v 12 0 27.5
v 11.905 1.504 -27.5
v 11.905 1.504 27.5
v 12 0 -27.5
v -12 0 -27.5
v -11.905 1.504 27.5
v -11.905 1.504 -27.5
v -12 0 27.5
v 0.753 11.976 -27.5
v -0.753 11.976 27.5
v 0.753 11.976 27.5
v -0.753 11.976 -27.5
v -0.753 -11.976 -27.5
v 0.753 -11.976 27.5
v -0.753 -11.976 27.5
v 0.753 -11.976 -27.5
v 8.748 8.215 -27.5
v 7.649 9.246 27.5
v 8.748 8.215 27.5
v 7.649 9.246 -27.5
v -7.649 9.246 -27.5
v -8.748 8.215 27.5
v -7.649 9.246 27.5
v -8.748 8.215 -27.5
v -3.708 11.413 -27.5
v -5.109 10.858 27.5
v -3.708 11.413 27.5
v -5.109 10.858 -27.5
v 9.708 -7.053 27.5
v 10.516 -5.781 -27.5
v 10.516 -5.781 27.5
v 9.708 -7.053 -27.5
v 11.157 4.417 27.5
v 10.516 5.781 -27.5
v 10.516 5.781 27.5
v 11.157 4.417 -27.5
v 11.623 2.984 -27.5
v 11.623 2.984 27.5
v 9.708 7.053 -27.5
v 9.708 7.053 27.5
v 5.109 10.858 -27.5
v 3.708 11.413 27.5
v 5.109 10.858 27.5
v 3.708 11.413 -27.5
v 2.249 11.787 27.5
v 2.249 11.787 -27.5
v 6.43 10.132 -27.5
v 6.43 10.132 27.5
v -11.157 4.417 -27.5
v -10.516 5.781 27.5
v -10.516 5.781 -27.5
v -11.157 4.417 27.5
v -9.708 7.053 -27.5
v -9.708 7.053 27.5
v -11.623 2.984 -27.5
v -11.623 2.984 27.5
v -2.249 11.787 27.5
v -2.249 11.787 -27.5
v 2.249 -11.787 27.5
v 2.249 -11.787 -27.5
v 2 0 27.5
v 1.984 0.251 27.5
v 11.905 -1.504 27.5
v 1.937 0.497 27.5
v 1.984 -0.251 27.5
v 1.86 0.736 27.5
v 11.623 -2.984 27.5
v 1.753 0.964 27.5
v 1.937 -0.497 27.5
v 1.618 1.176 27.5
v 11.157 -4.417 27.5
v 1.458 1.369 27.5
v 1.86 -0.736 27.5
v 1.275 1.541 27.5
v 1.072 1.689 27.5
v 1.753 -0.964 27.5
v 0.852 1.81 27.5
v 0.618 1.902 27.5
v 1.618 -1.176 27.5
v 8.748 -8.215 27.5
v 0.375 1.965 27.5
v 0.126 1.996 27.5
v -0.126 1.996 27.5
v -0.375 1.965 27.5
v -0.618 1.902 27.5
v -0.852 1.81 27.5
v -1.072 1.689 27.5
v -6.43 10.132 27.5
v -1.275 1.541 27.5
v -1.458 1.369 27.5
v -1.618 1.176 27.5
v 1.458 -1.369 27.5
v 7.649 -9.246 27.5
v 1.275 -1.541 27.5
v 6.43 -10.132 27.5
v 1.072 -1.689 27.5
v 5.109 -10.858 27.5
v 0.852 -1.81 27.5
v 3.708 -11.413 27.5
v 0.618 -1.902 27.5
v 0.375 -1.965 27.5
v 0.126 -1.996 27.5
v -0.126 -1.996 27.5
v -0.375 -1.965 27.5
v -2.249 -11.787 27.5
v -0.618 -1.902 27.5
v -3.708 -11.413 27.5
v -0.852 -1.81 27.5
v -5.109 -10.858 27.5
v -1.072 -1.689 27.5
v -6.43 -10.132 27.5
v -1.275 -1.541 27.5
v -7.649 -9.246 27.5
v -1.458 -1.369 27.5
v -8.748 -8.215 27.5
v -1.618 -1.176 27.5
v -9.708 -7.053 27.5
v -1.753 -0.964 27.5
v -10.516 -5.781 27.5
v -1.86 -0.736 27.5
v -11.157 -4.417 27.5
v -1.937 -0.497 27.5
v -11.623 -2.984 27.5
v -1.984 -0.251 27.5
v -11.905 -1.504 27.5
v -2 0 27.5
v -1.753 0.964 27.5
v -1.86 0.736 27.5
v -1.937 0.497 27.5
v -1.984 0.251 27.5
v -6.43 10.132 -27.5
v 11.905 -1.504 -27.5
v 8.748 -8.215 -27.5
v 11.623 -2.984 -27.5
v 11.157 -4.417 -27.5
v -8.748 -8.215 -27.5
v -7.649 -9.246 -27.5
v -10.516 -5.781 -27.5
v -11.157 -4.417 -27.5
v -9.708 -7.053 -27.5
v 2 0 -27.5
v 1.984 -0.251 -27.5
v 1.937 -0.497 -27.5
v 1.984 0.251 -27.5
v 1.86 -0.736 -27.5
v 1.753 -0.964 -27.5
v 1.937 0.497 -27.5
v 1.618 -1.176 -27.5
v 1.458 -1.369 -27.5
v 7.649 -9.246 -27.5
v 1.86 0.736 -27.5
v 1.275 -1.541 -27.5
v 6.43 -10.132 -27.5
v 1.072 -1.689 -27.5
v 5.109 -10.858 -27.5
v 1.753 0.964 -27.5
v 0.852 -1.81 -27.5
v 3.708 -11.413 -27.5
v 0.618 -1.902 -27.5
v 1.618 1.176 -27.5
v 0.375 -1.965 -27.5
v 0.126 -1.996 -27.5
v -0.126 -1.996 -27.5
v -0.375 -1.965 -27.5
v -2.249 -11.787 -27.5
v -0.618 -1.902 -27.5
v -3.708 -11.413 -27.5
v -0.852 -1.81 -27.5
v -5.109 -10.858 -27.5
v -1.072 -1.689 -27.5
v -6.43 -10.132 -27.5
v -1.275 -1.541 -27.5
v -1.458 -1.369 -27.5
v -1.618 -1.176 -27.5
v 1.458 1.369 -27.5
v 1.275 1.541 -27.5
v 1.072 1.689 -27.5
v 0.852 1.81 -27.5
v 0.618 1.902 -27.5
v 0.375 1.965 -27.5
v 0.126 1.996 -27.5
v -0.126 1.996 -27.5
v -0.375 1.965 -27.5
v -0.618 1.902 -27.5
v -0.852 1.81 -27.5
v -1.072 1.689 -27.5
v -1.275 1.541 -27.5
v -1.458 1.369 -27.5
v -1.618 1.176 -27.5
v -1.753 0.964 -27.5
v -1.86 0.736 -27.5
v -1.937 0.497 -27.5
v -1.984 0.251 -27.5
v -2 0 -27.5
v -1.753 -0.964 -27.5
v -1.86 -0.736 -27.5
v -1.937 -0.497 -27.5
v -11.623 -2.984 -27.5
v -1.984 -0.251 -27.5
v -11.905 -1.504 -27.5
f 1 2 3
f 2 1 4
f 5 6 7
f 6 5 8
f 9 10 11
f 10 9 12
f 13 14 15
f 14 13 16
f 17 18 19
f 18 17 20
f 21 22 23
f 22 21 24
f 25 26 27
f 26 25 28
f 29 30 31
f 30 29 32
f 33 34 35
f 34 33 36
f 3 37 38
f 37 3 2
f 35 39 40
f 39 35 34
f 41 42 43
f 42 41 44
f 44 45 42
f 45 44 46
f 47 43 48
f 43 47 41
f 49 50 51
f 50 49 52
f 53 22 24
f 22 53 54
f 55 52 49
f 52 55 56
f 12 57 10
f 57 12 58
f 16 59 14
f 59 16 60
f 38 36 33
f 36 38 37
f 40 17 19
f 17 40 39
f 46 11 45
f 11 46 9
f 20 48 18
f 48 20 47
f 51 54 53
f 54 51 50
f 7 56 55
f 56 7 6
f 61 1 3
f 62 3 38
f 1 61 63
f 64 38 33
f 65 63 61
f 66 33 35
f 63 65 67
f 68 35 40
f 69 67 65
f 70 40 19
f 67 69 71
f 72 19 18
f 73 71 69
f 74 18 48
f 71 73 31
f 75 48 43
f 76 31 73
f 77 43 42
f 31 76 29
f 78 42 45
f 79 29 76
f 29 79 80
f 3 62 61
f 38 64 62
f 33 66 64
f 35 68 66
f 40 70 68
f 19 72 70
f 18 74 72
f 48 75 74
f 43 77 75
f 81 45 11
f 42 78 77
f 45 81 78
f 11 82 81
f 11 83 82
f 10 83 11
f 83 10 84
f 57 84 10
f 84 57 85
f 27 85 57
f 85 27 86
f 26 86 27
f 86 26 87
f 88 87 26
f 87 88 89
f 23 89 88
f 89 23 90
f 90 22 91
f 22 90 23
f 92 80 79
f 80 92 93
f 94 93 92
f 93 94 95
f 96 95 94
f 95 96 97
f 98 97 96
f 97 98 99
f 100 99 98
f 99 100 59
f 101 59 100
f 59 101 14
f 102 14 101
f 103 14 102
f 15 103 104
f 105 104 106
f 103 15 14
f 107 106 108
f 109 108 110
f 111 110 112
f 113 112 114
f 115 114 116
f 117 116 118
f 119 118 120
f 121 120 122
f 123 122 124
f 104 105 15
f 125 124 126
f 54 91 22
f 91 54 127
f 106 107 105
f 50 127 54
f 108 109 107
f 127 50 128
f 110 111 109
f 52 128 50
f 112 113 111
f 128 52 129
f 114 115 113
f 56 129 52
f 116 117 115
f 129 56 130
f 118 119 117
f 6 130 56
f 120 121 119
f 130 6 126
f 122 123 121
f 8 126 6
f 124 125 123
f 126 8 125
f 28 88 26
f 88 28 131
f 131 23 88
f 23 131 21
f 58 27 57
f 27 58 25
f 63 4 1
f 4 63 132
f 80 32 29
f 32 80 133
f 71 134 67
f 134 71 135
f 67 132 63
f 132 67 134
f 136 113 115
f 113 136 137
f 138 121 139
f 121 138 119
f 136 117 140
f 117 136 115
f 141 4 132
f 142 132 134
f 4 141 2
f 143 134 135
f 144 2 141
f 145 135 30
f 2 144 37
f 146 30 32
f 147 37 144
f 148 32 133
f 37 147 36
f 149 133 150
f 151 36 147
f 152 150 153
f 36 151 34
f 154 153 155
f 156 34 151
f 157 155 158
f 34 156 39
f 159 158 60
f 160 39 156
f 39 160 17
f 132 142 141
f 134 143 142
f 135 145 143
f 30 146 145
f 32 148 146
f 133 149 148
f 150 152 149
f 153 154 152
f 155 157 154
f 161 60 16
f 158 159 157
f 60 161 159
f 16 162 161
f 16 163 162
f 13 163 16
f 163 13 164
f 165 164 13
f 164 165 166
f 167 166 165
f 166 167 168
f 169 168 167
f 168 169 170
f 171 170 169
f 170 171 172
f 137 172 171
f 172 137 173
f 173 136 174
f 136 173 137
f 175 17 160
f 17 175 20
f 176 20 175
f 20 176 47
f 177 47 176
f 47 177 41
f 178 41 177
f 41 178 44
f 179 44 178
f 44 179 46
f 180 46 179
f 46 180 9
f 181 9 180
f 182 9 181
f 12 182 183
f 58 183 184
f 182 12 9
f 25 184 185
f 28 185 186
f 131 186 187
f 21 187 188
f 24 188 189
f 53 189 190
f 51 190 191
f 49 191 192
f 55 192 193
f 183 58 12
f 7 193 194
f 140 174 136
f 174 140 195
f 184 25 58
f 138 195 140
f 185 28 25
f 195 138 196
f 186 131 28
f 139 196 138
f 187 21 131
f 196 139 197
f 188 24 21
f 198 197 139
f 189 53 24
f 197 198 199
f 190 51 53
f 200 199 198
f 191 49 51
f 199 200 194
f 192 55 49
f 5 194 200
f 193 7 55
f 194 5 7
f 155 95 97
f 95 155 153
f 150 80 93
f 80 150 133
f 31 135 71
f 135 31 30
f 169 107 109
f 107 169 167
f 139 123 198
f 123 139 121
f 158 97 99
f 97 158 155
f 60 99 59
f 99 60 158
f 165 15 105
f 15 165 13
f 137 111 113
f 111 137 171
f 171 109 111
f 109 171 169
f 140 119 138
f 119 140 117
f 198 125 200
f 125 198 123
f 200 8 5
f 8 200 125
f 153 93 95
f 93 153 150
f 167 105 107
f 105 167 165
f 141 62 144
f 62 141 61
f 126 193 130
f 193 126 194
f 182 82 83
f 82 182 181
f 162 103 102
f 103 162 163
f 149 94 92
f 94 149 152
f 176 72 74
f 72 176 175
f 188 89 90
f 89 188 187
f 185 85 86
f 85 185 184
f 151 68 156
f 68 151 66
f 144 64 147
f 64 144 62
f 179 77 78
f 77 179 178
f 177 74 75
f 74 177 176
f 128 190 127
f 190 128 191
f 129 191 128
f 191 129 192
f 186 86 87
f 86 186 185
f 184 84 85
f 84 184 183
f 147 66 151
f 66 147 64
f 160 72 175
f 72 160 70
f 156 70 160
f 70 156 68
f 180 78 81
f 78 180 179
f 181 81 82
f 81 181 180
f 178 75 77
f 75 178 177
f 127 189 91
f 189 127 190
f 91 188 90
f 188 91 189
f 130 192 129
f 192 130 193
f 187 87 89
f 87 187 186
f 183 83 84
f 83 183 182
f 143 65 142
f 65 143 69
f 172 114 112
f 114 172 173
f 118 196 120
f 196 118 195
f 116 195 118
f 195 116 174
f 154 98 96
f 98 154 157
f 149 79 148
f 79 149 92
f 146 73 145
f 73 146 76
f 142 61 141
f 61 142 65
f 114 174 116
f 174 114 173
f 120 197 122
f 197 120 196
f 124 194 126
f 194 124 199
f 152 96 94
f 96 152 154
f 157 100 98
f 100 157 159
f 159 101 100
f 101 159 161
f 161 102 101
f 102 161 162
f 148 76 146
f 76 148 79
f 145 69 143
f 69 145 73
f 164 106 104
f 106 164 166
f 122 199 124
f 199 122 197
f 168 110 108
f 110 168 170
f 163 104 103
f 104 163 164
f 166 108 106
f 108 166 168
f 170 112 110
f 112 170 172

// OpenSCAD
$fn = 50;


difference() {
	union() {
		translate(v = [0, 0, -27.5000000000]) {
			cylinder(h = 55, r = 12.0000000000);
		}
	}
	union() {
		translate(v = [0, 0, -100.0000000000]) {
			cylinder(h = 200, r = 2.0000000000);
		}
	}
}
